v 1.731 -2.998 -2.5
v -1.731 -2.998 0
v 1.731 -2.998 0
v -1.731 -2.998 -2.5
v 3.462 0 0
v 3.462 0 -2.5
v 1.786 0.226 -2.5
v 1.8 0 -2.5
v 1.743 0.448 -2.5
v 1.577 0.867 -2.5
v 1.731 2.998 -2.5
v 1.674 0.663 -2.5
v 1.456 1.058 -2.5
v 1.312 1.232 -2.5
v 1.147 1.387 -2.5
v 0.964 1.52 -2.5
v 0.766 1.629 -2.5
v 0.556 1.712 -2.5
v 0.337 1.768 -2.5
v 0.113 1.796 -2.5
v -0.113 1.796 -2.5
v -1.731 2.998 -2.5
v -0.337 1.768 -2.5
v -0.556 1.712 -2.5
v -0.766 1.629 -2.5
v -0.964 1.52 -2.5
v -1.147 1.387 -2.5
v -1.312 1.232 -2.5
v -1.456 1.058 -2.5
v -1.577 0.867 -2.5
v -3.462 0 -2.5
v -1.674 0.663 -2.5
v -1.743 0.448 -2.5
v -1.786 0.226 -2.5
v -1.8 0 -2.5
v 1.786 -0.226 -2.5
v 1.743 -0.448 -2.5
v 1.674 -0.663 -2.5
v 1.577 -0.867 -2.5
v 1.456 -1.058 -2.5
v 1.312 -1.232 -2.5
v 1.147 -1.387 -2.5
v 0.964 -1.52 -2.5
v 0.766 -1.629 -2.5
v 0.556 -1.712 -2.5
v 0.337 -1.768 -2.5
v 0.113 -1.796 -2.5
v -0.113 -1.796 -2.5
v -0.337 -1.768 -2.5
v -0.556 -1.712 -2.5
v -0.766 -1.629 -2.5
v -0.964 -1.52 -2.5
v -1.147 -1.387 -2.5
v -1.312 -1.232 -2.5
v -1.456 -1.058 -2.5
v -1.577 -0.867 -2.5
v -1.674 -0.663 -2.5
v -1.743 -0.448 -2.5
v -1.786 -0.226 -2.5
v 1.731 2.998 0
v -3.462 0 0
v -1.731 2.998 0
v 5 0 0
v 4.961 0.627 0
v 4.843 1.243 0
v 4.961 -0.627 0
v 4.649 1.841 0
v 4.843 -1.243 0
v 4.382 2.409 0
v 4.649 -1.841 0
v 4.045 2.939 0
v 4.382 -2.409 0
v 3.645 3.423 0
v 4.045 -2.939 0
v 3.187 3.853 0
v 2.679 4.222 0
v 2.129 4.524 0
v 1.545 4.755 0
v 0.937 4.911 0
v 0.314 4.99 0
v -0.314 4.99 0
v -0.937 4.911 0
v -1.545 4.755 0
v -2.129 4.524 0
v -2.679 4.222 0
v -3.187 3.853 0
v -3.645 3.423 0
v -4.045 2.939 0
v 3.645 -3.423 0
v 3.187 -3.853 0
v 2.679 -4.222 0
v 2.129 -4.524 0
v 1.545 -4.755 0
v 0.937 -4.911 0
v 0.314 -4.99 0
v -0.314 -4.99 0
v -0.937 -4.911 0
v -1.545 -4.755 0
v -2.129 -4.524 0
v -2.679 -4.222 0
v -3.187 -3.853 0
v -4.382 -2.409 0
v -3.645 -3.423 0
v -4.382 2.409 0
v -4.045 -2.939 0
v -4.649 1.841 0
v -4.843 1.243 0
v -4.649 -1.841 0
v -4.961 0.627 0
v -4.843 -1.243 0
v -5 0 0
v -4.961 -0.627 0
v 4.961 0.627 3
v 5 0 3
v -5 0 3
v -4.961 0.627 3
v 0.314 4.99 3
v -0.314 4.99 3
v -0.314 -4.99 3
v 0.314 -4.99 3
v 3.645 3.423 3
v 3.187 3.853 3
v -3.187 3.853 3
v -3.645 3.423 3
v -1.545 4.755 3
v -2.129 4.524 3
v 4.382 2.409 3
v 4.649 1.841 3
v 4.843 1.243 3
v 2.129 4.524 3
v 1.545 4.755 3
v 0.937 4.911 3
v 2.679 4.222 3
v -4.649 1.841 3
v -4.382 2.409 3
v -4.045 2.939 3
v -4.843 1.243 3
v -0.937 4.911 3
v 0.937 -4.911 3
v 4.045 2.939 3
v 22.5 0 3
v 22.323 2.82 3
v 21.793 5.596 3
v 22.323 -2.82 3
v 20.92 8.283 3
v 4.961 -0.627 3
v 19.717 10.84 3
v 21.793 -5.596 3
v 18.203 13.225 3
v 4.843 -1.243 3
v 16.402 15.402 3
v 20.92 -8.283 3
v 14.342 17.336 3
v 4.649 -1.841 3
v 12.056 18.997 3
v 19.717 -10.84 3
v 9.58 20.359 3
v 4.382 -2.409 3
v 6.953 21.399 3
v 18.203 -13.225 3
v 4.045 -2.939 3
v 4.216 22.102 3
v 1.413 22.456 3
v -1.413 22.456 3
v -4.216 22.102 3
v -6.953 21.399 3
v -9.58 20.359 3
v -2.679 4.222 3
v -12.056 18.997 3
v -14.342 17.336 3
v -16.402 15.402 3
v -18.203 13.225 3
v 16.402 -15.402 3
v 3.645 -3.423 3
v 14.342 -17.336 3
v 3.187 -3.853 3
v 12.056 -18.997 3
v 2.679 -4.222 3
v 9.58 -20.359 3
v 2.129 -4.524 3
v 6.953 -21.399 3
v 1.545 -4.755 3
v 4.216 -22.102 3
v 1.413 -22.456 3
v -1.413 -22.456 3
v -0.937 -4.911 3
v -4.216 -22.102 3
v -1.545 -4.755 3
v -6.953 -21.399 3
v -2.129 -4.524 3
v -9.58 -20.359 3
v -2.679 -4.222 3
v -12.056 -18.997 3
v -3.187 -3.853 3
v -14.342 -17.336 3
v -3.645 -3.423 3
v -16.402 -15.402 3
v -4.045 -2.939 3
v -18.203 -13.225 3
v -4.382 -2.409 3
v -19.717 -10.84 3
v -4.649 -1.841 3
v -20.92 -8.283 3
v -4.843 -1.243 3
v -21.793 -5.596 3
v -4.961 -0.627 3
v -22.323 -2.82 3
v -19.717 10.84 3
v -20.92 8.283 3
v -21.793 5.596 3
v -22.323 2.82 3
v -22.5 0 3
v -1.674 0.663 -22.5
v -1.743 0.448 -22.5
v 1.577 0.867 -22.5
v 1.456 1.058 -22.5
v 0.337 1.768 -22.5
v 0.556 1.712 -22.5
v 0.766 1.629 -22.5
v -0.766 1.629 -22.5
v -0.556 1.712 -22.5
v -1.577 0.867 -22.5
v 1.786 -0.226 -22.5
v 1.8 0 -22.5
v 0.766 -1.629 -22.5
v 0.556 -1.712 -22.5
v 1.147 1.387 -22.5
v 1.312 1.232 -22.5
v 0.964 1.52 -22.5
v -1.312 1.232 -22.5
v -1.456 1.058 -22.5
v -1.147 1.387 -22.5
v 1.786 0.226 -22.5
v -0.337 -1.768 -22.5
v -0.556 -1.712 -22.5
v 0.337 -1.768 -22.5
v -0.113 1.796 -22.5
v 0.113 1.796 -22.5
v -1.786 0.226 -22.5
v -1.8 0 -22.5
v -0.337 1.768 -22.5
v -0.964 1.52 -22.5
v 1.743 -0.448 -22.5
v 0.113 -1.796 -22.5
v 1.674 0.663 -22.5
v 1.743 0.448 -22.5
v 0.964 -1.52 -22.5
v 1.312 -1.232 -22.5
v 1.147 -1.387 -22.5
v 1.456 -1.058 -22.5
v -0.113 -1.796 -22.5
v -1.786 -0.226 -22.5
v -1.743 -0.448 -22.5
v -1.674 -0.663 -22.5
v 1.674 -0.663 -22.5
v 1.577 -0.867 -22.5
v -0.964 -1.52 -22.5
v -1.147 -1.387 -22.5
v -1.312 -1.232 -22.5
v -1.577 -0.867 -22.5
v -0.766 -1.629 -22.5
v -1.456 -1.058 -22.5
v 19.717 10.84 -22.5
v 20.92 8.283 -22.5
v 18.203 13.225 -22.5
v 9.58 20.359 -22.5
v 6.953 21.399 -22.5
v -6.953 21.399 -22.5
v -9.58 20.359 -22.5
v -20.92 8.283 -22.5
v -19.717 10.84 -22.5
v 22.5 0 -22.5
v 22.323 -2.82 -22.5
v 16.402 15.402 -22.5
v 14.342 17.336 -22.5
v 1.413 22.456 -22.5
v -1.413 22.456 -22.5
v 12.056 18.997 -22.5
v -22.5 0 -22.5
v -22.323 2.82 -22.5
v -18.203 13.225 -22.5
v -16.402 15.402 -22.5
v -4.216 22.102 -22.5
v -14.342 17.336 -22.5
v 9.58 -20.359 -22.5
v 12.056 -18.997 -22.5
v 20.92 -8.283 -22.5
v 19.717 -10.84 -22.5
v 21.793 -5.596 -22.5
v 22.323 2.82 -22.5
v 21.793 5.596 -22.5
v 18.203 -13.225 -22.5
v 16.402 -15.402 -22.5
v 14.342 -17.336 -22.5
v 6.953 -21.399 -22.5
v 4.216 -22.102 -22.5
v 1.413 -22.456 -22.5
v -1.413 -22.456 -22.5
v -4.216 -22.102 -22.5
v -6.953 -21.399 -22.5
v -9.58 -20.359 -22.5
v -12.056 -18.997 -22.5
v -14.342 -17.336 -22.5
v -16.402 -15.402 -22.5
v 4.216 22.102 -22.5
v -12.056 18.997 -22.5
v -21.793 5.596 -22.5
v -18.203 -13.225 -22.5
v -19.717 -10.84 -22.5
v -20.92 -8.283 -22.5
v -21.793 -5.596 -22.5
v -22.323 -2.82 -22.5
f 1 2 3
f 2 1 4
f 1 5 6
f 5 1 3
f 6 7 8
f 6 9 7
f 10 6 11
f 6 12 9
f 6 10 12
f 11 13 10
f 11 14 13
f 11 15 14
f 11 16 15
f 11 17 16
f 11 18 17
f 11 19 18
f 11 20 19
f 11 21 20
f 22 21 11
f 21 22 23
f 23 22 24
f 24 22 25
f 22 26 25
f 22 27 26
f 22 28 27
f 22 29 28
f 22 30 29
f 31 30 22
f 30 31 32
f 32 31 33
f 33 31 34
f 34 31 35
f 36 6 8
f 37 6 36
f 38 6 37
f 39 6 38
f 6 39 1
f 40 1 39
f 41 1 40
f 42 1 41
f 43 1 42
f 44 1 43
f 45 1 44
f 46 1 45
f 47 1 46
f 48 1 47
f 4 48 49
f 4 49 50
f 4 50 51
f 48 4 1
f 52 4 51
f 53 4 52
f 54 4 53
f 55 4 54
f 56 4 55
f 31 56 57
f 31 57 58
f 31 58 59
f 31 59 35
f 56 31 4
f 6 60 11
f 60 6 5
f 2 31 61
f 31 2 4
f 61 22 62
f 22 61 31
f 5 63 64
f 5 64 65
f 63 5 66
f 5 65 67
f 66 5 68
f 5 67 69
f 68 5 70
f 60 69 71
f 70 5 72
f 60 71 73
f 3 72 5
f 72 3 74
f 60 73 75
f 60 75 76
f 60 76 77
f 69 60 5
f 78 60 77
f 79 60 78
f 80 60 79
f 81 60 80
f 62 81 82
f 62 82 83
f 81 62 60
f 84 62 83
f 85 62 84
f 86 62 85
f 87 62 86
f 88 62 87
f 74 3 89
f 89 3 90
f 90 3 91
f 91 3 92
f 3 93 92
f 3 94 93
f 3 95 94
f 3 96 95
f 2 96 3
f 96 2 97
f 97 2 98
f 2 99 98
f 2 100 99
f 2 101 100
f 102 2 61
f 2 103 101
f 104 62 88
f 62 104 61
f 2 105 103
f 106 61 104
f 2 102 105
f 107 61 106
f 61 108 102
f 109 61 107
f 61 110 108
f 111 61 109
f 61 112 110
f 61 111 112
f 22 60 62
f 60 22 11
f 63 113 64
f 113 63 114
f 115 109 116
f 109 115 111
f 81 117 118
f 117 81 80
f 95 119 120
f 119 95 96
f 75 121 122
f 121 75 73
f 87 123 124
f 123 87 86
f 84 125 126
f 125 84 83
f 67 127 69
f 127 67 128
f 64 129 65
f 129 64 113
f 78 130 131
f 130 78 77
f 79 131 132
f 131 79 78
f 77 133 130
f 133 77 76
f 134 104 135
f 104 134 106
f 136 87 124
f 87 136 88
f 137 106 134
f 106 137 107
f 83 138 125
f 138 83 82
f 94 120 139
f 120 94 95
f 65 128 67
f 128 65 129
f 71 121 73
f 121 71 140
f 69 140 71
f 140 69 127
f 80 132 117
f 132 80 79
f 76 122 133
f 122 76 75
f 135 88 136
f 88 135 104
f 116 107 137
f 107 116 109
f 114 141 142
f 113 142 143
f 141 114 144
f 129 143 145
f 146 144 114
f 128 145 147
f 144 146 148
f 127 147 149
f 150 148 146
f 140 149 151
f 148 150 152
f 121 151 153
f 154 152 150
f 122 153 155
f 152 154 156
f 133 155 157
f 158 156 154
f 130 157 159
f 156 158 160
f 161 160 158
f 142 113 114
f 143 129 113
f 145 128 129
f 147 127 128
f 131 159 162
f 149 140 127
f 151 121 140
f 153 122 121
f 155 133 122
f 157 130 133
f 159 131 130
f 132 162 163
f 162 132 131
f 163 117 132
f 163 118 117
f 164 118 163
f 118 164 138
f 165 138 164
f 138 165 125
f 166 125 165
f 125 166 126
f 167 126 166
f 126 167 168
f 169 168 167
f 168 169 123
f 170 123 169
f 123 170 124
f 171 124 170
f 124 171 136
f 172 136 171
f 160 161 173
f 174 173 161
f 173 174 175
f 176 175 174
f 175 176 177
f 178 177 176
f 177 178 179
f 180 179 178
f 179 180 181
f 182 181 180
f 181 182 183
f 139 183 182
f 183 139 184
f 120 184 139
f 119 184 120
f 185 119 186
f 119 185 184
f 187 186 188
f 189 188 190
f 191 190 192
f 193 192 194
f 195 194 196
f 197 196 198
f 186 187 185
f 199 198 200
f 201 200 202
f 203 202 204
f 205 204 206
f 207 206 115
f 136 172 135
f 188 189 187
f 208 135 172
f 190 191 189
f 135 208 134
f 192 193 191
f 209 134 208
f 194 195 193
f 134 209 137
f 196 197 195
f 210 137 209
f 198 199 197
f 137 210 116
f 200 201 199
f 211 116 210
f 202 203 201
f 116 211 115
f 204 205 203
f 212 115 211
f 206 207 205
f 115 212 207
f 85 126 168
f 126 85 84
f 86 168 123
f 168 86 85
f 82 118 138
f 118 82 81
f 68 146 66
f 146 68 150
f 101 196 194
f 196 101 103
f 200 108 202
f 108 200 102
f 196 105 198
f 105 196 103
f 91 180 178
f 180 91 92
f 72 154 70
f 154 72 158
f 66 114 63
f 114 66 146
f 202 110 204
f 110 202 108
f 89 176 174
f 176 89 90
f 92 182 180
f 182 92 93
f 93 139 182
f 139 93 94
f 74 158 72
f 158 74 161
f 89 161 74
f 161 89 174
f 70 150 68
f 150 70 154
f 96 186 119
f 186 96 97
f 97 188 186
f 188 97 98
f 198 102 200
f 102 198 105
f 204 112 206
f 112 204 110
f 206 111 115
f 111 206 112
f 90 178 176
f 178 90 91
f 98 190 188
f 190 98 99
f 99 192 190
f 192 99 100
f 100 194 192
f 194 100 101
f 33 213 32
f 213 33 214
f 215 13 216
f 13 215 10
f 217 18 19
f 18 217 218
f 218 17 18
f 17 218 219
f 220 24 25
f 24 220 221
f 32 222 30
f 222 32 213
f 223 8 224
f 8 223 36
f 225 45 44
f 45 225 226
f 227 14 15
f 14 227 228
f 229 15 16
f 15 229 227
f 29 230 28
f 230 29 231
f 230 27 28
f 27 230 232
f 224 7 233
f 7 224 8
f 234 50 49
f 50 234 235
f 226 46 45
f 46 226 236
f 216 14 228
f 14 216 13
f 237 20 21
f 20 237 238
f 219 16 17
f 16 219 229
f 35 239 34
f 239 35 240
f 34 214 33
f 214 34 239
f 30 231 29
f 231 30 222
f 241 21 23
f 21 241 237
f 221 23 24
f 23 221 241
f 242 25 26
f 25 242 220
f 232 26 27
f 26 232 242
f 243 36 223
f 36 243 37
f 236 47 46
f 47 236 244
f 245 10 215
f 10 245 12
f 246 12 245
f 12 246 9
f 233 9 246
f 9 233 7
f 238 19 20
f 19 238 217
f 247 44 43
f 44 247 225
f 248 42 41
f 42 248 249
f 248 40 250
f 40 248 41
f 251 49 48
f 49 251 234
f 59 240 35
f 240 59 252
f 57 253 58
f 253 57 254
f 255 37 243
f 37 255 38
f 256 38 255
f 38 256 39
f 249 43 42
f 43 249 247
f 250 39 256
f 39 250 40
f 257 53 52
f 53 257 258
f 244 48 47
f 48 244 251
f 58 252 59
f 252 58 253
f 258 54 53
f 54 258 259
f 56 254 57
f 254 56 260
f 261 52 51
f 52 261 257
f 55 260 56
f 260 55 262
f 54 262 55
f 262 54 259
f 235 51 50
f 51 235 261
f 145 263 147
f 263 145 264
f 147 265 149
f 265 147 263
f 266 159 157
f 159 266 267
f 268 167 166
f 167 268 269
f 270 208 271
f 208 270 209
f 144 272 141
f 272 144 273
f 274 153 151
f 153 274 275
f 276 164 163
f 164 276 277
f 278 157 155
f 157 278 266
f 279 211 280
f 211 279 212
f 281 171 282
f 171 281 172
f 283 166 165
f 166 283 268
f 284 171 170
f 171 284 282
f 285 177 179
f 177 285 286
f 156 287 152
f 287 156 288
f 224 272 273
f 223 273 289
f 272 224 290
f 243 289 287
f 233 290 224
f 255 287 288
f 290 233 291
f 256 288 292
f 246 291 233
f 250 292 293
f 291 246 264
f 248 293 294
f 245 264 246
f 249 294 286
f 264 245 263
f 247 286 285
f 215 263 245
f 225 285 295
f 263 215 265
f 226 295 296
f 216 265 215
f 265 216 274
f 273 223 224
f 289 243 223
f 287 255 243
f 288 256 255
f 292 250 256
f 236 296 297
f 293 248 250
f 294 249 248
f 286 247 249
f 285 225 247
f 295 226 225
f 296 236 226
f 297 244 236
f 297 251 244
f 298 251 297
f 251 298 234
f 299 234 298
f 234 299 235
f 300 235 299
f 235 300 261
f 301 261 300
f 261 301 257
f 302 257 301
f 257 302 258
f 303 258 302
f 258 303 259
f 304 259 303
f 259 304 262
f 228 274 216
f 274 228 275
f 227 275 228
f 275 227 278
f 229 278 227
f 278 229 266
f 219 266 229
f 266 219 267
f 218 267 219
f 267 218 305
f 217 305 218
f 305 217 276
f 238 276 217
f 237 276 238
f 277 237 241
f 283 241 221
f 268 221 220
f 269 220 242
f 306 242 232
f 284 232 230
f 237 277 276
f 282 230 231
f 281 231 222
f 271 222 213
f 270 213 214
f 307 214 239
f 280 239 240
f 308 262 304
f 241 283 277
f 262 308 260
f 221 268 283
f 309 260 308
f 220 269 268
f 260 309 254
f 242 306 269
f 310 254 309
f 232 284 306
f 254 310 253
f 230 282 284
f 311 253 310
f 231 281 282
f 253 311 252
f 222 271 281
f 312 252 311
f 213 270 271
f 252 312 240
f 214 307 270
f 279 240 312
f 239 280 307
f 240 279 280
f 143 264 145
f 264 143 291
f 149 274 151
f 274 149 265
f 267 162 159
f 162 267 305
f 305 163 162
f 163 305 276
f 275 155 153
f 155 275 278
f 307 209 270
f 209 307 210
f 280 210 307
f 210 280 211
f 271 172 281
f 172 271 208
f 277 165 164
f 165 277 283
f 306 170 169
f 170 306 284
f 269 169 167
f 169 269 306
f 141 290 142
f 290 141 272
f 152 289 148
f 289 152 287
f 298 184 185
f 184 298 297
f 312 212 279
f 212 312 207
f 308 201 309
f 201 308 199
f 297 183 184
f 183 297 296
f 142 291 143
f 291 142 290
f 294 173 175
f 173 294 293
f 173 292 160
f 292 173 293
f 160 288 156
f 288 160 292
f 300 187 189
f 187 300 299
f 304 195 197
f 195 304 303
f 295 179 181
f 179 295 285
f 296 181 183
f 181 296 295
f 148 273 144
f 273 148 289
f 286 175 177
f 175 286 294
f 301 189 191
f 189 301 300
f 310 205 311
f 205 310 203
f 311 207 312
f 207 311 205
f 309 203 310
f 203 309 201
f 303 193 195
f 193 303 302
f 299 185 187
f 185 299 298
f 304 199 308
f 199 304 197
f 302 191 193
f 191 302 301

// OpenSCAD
$fn = 50;

difference() {
	union() {
		translate(v = [0, 0, -22.5]) {
			cylinder(h = 25.5, r = 22.5);
		}
	}
	union() {
		translate(v = [0, 0, 0]) {
			rotate(a = [0, 0, 0]) {
				difference() {
					union() {
						translate(v = [0, 0, -2.5]) {
							linear_extrude(height = 2.5) {
								polygon(points = [[3.4619999999999997, 0.0], [1.7310000000000003, 2.9981799479017264], [-1.7309999999999992, 2.9981799479017264], [-3.4619999999999997, 4.2397272186481365e-16], [-1.7310000000000014, -2.998179947901726], [1.7309999999999977, -2.9981799479017277]]);
							}
						}
					}
					union();
				}
			}
		}
		#cylinder(h = 3, r = 5.0);
		#translate(v = [0, 0, -100.0]) {
			cylinder(h = 200, r = 1.8);
		}
	}
}
